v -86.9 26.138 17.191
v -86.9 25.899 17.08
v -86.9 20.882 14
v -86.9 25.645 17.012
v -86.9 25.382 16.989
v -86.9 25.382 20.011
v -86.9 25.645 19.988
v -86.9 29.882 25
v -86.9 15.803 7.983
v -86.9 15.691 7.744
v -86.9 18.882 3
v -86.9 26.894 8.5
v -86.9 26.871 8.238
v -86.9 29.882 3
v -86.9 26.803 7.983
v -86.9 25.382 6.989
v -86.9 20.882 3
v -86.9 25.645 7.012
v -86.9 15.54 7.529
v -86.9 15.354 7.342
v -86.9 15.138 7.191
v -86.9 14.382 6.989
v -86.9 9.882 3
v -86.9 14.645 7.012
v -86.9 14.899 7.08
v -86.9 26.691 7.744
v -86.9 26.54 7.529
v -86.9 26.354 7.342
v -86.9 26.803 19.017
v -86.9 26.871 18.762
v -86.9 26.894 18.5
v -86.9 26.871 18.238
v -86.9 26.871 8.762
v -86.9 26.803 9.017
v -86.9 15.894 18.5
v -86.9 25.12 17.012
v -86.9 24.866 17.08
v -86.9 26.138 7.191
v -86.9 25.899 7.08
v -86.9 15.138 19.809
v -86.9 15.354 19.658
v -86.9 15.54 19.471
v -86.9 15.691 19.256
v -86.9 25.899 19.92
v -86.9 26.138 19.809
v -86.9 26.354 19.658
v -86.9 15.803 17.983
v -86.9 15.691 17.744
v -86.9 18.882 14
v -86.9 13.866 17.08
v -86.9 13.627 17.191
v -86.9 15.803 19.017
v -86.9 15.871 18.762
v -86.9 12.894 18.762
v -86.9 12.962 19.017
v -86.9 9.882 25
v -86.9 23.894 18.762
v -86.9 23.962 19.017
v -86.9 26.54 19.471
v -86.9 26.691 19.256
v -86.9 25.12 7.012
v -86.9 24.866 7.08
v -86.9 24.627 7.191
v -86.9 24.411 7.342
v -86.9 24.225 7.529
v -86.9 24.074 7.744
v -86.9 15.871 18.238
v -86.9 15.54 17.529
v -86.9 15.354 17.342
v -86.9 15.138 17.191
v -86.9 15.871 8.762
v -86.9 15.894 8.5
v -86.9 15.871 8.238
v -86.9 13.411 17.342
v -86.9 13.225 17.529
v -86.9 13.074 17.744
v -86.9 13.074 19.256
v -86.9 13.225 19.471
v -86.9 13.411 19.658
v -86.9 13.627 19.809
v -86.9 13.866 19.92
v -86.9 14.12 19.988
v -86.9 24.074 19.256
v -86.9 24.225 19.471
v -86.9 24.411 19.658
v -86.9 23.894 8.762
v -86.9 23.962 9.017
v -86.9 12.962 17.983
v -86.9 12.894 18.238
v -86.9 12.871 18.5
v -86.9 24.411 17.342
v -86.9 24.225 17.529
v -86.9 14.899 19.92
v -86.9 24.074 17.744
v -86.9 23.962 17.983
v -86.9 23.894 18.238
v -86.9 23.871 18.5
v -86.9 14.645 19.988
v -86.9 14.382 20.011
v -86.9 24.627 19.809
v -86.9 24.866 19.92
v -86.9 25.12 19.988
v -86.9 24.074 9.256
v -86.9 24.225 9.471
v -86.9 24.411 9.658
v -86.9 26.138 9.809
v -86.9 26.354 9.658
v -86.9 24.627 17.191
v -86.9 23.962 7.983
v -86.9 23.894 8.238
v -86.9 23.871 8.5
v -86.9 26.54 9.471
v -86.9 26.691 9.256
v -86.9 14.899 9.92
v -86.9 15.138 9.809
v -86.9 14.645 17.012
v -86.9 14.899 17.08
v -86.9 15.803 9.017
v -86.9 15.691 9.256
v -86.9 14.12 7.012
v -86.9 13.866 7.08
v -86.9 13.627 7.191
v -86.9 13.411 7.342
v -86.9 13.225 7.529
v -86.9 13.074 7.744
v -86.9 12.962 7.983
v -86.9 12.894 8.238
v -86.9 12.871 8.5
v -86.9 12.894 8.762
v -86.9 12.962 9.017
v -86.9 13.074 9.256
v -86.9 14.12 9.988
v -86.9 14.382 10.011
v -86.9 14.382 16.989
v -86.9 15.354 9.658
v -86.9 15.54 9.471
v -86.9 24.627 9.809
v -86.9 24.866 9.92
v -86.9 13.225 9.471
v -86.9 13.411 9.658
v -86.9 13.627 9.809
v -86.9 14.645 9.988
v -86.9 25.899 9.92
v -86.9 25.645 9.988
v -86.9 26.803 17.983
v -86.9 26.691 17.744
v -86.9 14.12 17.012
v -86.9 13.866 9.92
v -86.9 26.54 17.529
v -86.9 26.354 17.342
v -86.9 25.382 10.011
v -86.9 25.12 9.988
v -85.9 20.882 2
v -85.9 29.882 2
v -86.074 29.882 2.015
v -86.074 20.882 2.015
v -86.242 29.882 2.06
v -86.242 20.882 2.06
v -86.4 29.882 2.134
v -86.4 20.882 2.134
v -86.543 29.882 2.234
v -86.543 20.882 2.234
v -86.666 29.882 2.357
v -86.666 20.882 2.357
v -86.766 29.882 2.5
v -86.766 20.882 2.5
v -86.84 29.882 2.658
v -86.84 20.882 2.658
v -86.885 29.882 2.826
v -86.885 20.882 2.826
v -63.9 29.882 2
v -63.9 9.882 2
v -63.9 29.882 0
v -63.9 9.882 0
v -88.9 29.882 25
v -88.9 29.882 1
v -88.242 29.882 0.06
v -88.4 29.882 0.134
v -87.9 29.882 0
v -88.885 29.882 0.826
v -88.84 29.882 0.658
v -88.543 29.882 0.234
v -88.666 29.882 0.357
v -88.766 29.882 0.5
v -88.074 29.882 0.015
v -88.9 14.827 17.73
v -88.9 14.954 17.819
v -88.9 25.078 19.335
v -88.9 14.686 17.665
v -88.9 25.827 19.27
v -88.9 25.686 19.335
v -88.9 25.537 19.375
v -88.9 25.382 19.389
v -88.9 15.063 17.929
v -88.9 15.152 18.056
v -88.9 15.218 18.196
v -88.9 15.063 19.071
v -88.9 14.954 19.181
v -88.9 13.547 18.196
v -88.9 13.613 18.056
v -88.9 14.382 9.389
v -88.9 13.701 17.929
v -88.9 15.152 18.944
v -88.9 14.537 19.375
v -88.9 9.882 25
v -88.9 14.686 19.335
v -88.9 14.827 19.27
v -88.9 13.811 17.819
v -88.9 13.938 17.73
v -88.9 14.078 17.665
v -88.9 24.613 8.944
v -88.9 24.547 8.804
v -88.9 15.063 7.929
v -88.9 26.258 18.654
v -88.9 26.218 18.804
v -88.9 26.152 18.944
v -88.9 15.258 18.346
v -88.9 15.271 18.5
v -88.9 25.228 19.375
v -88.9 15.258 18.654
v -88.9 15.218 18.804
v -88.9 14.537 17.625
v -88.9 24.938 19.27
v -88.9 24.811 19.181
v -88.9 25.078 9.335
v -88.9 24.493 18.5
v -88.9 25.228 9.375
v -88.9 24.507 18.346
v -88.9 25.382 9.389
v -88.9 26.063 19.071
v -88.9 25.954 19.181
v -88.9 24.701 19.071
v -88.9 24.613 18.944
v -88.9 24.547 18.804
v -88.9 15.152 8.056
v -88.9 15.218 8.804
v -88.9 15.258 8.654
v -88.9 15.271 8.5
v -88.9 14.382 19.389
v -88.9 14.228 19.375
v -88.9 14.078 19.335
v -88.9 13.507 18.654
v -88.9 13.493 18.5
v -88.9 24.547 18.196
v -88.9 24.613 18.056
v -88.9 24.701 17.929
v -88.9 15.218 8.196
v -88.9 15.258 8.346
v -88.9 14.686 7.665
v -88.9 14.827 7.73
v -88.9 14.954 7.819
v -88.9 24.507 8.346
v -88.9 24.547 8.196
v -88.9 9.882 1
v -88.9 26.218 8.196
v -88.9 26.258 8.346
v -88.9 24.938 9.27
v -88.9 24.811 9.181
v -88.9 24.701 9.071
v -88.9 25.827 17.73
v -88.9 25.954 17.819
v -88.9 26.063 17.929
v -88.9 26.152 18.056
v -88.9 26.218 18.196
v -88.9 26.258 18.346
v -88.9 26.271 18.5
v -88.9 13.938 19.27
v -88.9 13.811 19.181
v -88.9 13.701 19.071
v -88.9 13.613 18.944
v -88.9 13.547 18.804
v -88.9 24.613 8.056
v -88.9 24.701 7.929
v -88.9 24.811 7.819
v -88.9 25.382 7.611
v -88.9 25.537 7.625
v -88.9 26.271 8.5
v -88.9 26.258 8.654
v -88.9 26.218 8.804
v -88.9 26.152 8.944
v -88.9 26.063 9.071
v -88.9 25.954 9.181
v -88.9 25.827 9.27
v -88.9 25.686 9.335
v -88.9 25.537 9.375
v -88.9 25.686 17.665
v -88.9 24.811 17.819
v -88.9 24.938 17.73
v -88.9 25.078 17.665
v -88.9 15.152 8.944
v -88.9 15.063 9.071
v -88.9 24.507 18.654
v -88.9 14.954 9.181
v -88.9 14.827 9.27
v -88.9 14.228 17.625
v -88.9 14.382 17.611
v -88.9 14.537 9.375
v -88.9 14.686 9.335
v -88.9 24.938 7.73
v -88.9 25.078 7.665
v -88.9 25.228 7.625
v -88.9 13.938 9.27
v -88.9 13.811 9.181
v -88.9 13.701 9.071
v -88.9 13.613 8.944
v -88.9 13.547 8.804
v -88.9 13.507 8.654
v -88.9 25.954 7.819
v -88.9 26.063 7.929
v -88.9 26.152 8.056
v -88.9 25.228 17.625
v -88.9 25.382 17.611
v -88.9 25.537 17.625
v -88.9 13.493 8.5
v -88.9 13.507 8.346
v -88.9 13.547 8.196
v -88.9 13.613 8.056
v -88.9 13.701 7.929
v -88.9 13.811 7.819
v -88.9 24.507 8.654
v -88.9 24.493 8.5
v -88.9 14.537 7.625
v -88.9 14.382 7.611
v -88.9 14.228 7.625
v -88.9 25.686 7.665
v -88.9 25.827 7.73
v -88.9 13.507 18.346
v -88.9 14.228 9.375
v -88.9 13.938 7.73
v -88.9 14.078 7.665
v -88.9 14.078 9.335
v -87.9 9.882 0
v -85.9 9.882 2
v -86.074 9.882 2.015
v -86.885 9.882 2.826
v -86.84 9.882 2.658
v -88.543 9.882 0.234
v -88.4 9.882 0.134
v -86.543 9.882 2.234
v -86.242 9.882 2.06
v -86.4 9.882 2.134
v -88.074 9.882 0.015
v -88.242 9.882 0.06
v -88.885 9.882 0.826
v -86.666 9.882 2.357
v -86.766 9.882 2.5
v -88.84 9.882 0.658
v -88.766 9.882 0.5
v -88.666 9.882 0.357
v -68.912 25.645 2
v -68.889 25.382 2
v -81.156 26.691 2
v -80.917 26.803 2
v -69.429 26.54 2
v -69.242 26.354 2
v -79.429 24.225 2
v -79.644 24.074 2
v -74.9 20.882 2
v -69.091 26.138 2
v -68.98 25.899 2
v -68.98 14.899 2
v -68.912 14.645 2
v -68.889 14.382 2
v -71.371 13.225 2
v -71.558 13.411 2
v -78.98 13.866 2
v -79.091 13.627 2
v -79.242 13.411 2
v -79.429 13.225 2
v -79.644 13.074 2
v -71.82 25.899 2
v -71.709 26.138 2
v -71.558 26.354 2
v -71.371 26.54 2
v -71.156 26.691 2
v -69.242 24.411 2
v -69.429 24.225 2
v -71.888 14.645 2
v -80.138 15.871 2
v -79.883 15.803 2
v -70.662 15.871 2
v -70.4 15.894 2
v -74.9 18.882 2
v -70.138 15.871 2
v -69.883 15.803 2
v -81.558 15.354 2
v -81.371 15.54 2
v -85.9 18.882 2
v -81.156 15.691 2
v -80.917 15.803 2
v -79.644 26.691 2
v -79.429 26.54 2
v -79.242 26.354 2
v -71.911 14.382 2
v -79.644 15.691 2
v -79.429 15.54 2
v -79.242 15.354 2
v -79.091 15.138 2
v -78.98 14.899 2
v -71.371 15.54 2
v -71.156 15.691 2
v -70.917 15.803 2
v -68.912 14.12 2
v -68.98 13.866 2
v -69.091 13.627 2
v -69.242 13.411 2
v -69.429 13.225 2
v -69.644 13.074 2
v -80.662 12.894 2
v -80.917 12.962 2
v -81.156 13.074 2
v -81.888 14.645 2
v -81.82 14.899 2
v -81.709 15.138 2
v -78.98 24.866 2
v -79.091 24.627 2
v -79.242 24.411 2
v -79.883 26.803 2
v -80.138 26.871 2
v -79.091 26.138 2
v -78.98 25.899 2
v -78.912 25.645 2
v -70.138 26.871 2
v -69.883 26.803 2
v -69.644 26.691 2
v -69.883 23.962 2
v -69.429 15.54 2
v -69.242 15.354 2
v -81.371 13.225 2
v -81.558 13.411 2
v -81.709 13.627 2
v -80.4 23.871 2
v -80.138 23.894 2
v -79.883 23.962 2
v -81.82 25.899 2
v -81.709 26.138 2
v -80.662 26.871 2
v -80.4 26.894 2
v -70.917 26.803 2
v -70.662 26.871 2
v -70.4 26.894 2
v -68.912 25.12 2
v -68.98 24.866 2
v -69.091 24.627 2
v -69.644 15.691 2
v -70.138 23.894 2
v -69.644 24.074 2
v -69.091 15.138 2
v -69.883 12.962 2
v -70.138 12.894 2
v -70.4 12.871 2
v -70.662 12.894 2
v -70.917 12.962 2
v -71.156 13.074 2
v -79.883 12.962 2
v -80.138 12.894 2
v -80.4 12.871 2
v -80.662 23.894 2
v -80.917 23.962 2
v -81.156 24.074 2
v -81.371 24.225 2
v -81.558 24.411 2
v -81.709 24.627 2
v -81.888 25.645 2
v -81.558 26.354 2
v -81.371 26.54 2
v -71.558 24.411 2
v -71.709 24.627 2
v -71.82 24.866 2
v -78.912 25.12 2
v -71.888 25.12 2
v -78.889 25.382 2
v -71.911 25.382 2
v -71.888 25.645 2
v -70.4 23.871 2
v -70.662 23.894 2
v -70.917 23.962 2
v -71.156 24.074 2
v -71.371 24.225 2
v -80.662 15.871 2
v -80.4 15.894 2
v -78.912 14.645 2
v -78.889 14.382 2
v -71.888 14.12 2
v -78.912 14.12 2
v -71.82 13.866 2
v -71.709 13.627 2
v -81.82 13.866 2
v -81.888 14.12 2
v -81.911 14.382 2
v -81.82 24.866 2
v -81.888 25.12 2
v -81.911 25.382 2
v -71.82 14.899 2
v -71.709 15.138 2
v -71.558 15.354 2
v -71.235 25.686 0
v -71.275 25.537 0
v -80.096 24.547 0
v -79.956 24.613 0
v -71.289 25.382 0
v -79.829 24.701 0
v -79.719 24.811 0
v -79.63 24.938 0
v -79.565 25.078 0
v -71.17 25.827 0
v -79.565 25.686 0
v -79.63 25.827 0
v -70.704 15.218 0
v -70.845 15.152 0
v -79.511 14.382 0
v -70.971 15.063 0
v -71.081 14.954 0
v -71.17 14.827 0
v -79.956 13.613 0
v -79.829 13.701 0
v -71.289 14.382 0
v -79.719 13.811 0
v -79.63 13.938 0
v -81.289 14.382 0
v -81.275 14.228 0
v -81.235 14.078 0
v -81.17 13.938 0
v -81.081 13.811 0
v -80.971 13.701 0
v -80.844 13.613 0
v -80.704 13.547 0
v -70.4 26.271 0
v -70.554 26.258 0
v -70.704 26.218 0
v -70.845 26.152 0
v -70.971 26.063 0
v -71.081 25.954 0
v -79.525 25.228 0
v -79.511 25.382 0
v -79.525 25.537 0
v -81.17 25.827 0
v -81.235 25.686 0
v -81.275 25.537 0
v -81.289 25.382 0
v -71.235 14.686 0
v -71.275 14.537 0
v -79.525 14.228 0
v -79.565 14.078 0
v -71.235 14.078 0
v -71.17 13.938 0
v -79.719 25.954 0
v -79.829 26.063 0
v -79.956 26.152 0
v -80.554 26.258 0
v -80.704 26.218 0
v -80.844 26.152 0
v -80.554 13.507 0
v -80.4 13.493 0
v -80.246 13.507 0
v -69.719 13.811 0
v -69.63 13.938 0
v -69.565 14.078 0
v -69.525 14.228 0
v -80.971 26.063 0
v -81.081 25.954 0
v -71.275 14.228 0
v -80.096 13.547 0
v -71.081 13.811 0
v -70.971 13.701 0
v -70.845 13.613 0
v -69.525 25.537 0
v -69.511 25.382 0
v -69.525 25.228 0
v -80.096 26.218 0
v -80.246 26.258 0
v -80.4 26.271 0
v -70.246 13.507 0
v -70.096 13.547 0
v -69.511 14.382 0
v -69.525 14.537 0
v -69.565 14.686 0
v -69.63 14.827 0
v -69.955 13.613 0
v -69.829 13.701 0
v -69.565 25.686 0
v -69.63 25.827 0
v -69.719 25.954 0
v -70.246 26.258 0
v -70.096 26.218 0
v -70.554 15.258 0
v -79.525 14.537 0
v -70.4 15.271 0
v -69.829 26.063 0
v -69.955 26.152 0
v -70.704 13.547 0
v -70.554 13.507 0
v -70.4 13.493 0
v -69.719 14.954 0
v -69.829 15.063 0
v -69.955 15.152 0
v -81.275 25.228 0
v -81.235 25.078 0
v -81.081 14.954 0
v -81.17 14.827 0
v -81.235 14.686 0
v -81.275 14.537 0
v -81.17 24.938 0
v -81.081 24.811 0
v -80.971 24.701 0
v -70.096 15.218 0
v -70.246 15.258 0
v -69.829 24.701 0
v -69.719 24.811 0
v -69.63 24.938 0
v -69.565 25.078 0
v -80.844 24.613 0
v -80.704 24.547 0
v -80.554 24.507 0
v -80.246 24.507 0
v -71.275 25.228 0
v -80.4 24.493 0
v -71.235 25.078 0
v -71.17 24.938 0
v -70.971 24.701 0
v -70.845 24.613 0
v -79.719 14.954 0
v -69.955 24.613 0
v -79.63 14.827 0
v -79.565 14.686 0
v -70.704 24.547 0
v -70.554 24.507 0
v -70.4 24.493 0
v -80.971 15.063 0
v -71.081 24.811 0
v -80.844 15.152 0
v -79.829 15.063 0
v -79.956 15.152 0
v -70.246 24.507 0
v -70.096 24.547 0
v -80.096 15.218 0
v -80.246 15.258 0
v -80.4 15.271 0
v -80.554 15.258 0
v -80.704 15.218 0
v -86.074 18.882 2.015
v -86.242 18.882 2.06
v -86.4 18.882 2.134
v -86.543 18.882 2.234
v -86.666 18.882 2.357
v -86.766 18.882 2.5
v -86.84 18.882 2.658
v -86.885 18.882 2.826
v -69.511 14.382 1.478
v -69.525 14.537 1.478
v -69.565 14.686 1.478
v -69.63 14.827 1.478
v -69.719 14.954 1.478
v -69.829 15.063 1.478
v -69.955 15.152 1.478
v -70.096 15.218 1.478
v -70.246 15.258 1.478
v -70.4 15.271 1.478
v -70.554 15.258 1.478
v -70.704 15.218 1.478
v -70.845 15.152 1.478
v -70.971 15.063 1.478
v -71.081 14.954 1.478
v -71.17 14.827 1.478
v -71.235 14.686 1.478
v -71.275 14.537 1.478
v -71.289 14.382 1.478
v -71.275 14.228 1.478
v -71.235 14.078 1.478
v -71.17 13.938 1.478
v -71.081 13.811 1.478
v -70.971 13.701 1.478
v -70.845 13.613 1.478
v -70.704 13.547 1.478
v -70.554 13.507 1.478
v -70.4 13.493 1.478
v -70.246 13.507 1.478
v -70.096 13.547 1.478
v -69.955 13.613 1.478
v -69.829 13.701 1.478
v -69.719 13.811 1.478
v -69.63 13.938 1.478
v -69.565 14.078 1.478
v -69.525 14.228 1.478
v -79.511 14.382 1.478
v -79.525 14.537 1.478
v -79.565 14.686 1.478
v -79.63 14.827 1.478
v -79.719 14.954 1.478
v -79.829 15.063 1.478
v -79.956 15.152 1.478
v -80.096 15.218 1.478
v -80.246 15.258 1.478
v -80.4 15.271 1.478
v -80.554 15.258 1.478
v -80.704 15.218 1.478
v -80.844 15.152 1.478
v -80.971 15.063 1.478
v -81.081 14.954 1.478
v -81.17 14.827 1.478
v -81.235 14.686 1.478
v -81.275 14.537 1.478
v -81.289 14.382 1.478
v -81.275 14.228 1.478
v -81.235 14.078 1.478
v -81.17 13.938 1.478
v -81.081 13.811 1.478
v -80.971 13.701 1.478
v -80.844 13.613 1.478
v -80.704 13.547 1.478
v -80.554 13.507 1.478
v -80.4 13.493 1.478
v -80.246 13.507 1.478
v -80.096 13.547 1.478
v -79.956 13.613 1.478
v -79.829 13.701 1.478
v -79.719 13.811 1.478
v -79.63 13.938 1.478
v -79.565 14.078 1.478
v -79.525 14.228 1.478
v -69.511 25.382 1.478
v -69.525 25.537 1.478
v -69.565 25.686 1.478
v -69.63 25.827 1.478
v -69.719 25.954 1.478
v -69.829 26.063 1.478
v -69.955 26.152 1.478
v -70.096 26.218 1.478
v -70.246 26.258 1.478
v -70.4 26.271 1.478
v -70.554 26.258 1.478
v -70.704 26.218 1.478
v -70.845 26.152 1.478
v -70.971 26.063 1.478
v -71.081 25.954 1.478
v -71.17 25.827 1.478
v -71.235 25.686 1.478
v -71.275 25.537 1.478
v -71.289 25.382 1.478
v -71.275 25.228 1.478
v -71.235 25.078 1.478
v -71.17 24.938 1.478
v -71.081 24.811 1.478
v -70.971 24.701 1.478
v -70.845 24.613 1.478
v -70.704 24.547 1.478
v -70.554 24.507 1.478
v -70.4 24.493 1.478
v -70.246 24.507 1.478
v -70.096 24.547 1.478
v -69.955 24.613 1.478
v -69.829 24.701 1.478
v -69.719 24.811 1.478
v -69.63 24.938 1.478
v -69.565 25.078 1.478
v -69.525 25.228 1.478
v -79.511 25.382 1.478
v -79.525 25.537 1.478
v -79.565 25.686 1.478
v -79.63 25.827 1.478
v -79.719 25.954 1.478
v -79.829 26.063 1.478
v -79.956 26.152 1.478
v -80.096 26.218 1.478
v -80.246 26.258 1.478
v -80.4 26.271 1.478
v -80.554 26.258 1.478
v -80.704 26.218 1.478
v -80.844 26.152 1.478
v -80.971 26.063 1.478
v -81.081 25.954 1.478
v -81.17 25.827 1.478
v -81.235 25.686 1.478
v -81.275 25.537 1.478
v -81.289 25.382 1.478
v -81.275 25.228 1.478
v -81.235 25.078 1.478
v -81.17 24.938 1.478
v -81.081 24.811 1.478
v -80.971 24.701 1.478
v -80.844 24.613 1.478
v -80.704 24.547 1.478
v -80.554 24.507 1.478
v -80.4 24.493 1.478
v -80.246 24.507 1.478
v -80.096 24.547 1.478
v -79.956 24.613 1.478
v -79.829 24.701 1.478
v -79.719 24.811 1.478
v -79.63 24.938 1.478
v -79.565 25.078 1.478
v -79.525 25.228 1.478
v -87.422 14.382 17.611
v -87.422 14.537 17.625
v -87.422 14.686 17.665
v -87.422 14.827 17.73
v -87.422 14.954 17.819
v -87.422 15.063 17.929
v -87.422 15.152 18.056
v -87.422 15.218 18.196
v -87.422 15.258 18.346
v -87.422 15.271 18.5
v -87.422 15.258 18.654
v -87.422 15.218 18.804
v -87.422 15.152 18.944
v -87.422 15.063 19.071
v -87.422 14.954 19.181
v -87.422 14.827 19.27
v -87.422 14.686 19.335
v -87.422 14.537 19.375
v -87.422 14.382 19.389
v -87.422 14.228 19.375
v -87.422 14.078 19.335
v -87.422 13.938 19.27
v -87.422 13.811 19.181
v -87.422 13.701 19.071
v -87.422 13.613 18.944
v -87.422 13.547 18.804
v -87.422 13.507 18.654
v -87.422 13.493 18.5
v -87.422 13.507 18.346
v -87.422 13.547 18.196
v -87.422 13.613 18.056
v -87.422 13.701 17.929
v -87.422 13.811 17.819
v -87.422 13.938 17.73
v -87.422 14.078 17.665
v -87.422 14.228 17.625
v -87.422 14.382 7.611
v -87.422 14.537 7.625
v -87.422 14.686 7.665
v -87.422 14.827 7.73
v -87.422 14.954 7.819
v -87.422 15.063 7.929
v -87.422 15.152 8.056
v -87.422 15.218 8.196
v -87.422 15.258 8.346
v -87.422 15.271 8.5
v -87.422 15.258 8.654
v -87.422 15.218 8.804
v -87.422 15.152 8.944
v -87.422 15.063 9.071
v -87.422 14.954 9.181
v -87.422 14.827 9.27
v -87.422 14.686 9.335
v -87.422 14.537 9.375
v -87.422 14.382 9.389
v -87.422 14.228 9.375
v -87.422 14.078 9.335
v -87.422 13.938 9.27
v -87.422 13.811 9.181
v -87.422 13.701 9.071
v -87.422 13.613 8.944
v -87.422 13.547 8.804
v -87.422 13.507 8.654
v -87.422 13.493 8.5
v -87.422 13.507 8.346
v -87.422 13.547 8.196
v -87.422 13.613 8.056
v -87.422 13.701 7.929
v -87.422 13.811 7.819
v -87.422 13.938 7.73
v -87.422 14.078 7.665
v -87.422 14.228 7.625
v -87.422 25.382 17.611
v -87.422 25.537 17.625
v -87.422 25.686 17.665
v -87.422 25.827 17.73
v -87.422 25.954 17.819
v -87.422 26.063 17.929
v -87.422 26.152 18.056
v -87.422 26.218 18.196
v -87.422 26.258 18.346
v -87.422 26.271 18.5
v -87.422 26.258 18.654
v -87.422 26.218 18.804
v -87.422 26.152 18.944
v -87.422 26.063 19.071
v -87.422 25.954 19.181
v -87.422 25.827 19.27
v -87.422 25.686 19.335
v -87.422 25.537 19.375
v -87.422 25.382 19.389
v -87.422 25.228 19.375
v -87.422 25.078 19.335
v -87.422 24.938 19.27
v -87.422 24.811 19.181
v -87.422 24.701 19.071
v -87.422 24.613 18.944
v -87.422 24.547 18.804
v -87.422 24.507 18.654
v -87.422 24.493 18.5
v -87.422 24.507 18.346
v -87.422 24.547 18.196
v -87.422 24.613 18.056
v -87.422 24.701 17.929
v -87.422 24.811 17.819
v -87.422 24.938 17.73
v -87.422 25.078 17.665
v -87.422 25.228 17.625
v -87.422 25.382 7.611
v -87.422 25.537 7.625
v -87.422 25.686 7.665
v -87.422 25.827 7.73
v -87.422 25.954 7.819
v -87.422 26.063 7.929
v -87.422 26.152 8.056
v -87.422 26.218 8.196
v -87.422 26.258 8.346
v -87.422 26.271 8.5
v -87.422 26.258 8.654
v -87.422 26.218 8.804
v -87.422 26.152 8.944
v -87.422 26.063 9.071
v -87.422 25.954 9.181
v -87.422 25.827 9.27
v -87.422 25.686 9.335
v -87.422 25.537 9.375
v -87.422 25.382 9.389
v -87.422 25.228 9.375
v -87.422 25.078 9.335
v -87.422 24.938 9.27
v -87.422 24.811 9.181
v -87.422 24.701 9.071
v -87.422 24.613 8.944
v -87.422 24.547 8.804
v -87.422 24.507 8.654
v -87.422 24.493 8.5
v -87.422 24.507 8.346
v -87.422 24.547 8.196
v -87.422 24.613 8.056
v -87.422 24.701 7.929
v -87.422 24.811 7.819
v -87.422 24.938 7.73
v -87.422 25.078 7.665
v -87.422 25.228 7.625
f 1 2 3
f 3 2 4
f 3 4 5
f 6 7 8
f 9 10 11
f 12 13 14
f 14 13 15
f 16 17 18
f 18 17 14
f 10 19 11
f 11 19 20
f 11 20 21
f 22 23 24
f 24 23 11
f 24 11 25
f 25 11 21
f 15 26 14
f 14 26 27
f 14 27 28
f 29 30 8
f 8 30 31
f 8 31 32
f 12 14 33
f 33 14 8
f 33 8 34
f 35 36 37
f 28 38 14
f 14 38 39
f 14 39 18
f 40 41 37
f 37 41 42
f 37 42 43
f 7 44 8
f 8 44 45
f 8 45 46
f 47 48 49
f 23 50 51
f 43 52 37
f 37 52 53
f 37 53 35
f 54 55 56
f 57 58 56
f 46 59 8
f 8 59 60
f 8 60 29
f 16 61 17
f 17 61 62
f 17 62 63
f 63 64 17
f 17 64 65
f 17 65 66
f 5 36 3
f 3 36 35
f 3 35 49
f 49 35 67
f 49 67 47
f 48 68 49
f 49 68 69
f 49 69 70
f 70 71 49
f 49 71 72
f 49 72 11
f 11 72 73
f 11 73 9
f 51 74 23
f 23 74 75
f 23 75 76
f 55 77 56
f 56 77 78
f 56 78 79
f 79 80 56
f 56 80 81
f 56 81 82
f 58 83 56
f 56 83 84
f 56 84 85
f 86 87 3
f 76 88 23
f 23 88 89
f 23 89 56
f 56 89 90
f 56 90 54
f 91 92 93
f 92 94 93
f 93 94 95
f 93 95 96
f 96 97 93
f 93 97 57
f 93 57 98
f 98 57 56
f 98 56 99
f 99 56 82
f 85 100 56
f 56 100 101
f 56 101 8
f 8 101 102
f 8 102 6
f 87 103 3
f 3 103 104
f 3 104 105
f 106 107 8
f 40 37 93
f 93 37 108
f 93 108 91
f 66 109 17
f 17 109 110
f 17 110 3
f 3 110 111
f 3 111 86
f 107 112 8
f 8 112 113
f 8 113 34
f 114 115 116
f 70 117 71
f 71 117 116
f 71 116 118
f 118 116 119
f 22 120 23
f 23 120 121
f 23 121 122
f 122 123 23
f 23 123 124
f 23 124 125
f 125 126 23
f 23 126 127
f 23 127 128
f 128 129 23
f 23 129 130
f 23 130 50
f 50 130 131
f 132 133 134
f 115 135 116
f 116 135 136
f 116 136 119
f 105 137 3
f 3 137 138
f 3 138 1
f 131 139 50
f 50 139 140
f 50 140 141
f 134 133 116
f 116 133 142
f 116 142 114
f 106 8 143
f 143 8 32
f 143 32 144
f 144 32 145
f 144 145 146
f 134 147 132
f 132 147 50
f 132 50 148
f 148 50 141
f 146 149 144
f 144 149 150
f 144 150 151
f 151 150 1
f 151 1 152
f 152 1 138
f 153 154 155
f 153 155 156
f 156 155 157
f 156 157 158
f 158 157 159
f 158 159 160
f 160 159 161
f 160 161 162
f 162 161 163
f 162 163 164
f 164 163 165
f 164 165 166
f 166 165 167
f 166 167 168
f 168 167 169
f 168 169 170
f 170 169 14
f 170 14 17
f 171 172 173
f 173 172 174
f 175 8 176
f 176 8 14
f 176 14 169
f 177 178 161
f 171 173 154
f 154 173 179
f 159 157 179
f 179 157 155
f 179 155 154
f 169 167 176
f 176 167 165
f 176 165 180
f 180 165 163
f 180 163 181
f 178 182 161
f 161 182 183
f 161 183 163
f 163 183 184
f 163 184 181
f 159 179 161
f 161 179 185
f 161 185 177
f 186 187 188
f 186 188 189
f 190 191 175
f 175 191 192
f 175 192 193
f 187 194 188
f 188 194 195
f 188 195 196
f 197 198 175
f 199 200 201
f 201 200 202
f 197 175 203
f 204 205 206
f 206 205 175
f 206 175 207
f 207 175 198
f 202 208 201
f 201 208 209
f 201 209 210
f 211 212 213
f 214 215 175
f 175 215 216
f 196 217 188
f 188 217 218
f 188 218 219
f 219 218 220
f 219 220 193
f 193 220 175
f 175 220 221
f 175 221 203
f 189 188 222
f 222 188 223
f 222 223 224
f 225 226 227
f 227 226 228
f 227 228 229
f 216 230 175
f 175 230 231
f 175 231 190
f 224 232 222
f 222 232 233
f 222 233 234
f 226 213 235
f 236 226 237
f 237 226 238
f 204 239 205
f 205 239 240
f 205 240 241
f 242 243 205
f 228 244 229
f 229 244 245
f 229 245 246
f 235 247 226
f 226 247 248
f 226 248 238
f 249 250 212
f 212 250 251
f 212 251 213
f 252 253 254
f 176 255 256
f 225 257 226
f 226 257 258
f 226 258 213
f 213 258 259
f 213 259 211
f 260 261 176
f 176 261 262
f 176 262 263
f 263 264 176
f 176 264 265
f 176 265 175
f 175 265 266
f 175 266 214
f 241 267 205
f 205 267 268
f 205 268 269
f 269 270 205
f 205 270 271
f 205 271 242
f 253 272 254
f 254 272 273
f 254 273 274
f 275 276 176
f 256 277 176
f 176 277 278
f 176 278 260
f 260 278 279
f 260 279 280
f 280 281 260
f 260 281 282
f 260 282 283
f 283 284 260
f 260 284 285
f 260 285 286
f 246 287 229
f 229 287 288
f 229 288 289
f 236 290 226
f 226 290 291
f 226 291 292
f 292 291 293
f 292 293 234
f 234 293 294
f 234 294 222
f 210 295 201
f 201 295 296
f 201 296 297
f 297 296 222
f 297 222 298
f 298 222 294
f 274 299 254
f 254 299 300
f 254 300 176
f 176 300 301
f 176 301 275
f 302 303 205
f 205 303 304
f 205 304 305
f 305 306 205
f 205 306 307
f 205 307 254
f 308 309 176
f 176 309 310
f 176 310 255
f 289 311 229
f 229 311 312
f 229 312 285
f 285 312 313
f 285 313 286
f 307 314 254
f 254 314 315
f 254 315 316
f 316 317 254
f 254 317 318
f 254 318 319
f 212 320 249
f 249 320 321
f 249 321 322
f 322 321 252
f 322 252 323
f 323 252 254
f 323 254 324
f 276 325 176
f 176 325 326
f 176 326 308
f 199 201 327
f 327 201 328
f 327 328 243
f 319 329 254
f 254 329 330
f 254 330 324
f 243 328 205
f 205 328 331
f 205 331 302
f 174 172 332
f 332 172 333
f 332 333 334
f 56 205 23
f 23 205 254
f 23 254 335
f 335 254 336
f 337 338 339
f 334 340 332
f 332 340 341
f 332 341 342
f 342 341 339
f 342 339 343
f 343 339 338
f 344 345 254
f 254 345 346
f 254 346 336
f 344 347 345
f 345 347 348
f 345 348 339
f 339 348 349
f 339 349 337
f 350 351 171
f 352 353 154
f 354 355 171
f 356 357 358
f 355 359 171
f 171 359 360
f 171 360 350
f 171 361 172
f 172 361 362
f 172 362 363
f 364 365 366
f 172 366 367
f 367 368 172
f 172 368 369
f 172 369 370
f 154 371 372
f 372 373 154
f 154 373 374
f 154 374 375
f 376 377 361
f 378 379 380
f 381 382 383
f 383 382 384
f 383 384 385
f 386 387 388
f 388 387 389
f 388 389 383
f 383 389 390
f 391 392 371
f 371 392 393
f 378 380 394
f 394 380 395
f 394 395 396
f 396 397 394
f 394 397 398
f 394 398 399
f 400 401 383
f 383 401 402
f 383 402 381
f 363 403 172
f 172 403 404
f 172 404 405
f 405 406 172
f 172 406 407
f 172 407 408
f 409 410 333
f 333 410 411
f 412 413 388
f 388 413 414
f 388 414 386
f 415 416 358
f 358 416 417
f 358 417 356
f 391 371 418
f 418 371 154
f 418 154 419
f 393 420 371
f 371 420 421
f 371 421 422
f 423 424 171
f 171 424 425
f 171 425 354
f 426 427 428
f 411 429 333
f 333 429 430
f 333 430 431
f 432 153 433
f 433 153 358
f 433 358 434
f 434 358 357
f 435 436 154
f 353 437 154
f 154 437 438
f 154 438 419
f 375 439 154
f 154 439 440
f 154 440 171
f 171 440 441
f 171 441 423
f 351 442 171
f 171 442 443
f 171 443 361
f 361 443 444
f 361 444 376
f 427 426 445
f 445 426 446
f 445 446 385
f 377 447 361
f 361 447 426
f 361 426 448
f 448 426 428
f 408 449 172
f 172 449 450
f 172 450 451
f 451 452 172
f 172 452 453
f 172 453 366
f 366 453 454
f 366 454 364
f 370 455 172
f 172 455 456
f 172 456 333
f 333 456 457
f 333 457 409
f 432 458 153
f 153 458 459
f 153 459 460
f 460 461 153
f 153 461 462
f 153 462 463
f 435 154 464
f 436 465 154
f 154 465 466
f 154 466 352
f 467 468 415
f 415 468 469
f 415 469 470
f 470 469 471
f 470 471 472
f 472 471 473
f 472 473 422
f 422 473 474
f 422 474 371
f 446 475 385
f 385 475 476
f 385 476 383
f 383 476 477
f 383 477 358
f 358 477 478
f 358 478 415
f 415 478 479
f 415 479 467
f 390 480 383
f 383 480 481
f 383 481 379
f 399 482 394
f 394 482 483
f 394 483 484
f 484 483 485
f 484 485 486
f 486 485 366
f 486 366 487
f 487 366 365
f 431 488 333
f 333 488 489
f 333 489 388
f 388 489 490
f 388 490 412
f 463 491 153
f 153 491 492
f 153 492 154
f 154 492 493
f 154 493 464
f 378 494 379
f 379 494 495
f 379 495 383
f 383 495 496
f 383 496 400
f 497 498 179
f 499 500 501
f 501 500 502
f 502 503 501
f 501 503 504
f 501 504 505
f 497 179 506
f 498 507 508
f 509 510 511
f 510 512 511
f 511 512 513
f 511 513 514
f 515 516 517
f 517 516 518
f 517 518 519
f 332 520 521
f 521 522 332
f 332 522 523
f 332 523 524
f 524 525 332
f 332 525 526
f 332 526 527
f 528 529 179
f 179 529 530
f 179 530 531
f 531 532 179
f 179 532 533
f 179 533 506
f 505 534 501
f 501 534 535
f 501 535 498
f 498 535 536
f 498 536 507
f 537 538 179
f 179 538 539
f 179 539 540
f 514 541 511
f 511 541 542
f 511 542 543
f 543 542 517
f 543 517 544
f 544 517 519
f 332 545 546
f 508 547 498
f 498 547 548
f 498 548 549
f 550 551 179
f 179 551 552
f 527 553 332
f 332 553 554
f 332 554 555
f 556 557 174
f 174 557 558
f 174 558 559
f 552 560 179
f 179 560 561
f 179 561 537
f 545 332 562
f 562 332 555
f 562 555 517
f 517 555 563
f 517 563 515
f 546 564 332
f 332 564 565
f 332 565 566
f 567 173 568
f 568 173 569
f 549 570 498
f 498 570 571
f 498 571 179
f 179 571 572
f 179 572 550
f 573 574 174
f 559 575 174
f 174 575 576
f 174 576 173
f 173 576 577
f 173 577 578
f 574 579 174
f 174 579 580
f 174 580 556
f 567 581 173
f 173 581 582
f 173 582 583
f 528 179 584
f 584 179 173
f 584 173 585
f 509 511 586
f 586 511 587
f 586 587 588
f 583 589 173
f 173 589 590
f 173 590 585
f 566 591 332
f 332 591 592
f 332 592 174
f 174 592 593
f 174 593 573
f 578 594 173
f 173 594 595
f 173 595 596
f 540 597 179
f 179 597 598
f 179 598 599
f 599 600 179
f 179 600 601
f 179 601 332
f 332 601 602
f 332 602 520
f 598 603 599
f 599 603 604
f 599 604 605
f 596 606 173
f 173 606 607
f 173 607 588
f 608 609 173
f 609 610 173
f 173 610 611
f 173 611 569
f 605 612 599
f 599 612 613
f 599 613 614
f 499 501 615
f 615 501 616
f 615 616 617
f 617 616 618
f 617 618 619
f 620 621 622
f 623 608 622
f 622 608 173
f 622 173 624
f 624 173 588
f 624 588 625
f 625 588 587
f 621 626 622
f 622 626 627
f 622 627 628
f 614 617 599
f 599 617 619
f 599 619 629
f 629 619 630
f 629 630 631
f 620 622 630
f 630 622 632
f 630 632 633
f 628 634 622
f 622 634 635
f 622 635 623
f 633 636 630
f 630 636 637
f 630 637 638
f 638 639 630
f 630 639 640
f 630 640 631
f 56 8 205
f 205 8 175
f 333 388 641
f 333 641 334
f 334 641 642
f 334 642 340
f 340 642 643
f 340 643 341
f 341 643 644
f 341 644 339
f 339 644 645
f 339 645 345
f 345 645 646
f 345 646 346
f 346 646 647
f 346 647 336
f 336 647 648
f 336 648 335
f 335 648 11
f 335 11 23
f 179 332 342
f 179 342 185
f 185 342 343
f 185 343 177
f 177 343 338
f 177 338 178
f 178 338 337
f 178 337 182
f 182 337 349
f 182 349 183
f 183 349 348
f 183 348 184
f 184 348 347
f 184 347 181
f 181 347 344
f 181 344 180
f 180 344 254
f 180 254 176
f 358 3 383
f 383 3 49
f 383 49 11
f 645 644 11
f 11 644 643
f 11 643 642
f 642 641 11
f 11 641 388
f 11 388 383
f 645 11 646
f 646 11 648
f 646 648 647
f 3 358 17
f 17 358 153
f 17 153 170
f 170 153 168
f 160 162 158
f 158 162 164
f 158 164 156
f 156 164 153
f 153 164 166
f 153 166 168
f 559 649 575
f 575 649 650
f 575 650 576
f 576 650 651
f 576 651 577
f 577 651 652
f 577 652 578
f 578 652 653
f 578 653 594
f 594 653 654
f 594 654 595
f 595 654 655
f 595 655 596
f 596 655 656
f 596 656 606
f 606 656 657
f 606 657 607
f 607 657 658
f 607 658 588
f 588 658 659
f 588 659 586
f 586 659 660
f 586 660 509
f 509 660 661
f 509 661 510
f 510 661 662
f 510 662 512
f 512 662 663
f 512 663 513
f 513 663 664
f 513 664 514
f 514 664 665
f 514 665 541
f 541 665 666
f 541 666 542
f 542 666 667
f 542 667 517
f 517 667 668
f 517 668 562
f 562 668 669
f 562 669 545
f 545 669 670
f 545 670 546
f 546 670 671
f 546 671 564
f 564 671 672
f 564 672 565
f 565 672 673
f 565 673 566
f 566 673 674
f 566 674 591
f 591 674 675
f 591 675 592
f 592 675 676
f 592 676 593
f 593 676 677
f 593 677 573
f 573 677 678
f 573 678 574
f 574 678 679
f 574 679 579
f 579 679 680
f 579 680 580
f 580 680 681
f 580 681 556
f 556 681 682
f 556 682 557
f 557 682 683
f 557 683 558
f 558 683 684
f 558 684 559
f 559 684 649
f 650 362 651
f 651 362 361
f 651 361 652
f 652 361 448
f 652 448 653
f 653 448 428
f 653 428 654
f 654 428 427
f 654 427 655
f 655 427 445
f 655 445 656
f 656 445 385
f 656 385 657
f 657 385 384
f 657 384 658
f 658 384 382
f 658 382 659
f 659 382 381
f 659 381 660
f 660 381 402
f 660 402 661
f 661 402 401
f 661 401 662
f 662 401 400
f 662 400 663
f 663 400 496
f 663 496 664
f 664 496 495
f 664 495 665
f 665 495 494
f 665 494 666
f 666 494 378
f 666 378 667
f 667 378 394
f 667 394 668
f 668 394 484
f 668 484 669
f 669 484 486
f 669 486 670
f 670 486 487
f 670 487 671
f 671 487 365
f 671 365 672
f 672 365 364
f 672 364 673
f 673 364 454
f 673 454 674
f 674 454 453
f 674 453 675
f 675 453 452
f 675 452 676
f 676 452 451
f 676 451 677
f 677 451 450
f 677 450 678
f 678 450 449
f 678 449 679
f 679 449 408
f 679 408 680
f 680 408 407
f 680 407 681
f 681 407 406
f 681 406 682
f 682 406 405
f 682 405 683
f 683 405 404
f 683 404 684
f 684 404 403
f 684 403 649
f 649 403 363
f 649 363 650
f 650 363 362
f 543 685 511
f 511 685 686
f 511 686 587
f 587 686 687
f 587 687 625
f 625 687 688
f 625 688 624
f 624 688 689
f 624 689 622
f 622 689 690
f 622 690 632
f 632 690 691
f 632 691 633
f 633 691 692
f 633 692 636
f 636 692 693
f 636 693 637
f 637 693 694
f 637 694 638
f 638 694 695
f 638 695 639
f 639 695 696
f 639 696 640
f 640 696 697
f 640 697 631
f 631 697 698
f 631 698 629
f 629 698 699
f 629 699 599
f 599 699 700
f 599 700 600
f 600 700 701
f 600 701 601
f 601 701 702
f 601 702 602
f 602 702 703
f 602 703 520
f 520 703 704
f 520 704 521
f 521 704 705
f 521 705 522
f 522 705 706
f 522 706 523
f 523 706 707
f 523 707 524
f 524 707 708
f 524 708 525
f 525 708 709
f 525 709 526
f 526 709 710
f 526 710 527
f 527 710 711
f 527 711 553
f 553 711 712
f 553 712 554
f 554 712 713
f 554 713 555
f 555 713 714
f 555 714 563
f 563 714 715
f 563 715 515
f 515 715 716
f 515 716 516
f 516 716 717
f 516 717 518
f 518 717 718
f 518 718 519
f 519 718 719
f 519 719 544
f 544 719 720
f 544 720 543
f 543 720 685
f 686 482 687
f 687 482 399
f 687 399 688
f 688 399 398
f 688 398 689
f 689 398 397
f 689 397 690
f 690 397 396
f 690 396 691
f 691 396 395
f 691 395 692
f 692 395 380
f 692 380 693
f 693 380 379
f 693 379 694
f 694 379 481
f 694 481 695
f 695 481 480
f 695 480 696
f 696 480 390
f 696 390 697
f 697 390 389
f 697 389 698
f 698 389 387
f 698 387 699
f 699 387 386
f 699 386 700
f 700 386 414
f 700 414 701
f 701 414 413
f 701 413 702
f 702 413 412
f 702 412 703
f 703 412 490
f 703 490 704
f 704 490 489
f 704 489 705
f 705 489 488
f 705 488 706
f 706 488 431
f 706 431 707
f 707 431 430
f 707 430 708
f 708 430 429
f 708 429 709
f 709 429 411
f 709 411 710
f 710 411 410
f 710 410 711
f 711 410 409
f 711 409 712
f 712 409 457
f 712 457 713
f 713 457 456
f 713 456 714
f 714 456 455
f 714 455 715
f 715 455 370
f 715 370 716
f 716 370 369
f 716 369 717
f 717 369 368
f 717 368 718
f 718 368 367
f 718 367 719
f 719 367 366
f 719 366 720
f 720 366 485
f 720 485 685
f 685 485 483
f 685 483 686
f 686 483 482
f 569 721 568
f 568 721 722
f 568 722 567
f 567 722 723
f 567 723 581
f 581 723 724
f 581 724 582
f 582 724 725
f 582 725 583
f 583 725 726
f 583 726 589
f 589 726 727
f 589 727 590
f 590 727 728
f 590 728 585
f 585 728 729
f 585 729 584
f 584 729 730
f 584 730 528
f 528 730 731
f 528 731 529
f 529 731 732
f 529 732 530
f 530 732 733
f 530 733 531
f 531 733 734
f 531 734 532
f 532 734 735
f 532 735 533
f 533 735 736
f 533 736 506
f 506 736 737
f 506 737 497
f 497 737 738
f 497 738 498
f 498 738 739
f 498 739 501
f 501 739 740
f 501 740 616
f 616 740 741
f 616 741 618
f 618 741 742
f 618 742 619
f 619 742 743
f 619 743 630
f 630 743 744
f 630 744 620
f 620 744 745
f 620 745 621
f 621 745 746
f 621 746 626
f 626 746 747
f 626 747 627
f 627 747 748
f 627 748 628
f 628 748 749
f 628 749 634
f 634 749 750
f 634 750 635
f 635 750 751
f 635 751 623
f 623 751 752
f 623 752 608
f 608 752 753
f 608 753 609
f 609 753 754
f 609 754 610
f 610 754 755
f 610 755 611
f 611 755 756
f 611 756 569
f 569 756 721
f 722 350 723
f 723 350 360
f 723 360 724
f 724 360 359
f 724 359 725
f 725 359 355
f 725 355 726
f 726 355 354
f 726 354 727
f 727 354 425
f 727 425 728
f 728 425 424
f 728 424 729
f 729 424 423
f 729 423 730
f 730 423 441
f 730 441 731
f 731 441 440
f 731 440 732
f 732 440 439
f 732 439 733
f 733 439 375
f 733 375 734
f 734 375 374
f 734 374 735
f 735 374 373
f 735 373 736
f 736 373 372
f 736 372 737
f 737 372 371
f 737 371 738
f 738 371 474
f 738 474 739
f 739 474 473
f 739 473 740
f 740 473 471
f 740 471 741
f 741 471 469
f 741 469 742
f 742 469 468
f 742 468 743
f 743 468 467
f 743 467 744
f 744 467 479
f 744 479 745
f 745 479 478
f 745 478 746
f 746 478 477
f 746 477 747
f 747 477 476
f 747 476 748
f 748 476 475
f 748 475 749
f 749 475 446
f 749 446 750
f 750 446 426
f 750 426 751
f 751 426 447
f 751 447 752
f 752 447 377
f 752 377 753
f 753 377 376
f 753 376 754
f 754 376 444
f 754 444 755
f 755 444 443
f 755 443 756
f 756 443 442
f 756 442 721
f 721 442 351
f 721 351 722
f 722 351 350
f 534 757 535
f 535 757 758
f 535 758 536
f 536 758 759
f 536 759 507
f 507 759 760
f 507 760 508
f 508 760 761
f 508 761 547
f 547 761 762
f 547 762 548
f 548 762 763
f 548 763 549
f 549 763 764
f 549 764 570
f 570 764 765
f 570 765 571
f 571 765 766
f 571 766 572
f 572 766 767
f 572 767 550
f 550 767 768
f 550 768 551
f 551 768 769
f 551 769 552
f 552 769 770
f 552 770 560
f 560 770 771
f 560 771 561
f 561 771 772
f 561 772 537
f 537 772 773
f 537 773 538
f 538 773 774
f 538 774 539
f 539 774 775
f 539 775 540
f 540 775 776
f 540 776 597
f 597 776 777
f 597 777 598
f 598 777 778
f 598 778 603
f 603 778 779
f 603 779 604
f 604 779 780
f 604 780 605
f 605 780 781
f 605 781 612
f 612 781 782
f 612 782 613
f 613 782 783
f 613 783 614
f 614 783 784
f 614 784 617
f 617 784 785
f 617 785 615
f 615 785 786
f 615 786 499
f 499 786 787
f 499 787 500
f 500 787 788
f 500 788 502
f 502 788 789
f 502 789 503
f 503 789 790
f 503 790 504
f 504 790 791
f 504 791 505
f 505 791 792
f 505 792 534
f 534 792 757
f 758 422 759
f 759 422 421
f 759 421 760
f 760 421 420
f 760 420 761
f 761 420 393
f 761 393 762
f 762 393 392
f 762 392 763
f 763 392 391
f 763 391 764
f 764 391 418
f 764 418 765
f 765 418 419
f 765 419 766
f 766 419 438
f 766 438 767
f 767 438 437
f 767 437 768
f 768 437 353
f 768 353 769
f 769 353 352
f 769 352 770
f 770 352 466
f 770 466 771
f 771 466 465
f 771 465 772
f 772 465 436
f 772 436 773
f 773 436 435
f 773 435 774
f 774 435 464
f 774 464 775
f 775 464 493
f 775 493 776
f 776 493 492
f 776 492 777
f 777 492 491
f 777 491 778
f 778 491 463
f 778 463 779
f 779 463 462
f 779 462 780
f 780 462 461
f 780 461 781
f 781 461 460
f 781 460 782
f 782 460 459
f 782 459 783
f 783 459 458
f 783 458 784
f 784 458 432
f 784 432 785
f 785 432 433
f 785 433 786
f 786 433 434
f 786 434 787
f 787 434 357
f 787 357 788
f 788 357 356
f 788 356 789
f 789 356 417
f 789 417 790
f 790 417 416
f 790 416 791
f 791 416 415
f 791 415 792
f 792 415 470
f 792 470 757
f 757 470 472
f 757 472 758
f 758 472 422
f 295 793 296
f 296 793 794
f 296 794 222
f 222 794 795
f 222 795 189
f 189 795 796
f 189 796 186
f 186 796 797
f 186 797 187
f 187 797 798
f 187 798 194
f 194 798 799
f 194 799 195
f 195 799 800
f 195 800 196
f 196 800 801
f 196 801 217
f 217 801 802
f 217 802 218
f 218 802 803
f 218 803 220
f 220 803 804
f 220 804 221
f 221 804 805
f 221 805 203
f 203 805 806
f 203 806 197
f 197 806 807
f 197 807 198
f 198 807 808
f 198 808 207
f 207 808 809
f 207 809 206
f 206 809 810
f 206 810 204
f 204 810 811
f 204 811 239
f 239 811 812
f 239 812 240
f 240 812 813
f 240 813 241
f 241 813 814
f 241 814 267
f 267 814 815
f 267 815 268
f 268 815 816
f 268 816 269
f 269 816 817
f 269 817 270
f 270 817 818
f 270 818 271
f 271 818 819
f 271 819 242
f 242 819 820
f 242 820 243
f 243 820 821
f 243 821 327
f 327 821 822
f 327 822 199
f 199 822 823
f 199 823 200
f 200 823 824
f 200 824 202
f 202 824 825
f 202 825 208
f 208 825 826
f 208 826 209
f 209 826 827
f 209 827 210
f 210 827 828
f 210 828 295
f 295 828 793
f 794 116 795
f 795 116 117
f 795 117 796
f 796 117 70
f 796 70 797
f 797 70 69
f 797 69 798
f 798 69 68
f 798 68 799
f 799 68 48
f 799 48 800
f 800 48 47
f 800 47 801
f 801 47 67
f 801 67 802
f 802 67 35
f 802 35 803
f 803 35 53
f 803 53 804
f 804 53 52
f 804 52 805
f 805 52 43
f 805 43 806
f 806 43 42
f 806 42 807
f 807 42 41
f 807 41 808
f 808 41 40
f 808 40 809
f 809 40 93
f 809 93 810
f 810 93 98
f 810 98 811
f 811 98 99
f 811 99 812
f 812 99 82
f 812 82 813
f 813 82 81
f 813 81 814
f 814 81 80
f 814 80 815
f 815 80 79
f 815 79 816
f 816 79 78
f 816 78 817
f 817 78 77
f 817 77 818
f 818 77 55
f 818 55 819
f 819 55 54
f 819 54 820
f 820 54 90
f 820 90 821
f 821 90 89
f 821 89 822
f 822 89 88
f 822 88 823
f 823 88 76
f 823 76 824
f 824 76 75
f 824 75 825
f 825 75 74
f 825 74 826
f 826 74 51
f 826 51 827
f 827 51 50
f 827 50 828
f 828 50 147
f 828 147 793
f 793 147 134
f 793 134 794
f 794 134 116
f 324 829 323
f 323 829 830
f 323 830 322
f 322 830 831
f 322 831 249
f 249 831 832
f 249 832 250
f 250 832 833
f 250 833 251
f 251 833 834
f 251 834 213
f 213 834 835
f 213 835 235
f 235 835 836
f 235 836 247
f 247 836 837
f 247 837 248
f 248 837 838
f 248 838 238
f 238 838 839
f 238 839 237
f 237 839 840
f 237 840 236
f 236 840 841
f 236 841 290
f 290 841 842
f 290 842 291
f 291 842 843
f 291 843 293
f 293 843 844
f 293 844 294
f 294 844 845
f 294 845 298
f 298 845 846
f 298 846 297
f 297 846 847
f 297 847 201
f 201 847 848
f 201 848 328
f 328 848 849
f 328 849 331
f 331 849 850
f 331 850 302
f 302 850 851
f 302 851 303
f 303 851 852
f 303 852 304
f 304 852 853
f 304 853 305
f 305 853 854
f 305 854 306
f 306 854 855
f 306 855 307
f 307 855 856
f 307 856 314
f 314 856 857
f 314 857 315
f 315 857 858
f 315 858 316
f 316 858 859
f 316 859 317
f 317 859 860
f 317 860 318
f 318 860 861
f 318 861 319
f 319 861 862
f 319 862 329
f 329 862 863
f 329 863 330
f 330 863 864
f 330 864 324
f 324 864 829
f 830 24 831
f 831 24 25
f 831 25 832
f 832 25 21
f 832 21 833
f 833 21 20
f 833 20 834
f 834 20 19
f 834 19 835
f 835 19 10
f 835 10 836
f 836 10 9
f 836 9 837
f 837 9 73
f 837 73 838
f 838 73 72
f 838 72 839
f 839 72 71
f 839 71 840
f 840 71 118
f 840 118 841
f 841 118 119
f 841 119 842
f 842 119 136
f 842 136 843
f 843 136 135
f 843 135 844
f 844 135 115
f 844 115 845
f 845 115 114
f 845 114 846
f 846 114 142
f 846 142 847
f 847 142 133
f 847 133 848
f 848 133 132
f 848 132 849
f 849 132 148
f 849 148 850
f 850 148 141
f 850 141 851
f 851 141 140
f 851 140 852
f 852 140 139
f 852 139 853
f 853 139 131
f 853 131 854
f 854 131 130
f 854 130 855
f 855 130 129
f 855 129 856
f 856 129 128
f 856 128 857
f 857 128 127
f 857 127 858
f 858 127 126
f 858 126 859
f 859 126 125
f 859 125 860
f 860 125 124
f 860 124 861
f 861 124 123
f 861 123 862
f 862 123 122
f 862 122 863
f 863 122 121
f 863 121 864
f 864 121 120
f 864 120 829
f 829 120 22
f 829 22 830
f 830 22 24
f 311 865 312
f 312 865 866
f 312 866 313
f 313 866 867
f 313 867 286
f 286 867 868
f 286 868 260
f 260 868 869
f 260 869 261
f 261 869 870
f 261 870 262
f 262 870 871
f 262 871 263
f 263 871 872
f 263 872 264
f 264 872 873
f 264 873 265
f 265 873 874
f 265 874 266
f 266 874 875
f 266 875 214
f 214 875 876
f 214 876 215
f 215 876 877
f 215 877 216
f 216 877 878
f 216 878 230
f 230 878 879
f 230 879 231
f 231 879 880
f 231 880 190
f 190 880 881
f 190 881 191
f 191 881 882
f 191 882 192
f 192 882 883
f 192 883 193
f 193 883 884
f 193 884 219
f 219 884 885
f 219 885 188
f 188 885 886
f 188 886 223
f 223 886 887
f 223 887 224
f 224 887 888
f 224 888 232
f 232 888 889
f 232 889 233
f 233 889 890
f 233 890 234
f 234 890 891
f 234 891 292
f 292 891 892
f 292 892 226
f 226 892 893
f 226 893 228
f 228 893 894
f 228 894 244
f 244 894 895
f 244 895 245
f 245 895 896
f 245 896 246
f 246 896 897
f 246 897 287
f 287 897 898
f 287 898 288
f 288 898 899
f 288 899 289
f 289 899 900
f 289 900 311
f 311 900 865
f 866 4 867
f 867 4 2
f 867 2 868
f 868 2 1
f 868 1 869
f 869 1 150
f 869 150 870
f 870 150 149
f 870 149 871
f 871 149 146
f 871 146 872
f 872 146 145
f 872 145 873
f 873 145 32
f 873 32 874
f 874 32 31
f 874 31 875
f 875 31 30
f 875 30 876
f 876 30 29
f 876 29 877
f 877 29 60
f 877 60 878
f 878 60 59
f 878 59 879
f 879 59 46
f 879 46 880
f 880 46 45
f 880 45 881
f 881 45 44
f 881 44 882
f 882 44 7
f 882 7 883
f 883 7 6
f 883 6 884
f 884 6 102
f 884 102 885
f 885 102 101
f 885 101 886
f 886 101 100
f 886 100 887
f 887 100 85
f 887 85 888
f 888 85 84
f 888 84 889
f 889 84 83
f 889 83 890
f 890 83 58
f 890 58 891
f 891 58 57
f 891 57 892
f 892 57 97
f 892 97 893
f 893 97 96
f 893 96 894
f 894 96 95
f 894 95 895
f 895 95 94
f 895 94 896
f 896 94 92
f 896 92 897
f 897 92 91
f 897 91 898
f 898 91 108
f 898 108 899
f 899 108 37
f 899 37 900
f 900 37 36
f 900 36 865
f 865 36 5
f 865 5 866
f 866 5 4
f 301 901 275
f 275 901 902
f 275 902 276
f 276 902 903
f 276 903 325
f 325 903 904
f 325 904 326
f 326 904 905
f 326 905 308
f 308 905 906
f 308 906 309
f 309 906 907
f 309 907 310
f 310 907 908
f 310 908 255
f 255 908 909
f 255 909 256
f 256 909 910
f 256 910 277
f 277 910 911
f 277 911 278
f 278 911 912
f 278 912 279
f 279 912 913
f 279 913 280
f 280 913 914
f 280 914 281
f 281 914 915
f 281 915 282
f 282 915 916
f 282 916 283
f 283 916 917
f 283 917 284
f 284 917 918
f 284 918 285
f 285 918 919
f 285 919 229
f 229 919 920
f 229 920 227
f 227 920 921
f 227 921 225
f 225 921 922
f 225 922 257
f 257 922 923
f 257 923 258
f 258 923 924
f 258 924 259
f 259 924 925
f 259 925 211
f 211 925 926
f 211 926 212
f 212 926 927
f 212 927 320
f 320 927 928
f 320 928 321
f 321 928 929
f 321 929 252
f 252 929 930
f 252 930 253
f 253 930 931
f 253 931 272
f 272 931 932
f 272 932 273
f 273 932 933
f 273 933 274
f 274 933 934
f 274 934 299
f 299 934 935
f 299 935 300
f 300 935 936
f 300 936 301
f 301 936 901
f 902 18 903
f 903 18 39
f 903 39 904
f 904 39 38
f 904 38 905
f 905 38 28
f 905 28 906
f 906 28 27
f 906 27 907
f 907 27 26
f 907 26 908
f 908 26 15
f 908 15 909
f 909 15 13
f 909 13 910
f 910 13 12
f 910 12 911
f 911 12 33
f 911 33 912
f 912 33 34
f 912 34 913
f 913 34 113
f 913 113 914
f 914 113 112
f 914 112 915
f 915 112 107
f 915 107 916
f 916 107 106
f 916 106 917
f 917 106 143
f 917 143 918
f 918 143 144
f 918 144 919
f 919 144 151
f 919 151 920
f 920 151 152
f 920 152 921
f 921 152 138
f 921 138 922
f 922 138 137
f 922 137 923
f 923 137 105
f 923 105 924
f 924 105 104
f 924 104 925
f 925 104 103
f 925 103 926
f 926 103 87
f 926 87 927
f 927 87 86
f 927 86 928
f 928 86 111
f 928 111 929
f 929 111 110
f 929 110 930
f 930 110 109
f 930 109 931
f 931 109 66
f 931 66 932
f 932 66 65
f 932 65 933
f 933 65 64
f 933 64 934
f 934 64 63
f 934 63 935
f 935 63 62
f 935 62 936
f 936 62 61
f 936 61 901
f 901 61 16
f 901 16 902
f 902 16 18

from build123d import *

# Parameters (mm, degrees)
SKETCH1_W                                 = 25
SKETCH1_H                                 = 20
BOSS_EXTRUDE1_DEPTH                       = 2
SKETCH2_W                                 = 2
SKETCH2_H                                 = 20
BOSS_EXTRUDE2_DEPTH                       = 23
FILLET2_R                                 = 1
FILLET3_R                                 = 1
RIB1_REACH                                = 94.888
SKETCH4_WALL_W                            = 204.746879862
SKETCH4_WALL_H                            = 2
CSK_FOR_0_FLAT_HEAD_MACHINE_SCREW_2_COUNT = 2
CSK_FOR_0_FLAT_HEAD_MACHINE_SCREW_2_PITCH = 10


with BuildPart() as part:
    # Sketch1 → Boss-Extrude1 (new body)
    with BuildSketch(Plane.XY):
        with Locations((-76.4, 19.882401427)):
            Rectangle(SKETCH1_W, SKETCH1_H)
    extrude(amount=BOSS_EXTRUDE1_DEPTH)

    # Sketch2 → Boss-Extrude2 (add)
    with BuildSketch(Plane.XY.offset(2)):
        with Locations((-87.9, 19.882401427)):
            Rectangle(SKETCH2_W, SKETCH2_H)
    extrude(amount=BOSS_EXTRUDE2_DEPTH)

    # Fillet2
    fillet2_edges = [part.edges().sort_by_distance(p)[0] for p in [
        (-86.9, 19.882401427, 2),
    ]]
    fillet(fillet2_edges, radius=FILLET2_R)

    # Fillet3
    fillet3_edges = [part.edges().sort_by_distance(p)[0] for p in [
        (-88.9, 19.882401427, 0),
    ]]
    fillet(fillet3_edges, radius=FILLET3_R)

    # Sketch4 wall → Rib1 (add, up to next)
    with BuildSketch(Plane(origin=(-80.9, 19.882401427, 8), x_dir=(0.707106781187, 0, -0.707106781187), z_dir=(0.707106781187, 0, 0.707106781187)), mode=Mode.PRIVATE) as rib1_sk1:
        Rectangle(SKETCH4_WALL_W, SKETCH4_WALL_H)
    rib1_tool1 = extrude(rib1_sk1.sketch, amount=-RIB1_REACH, mode=Mode.PRIVATE) - part.part
    add(rib1_tool1.solids().sort_by_distance((-80.9, 19.882401427, 8))[0])

    # Sketch5 → CSK for #0 Flat Head Machine Screw (100)1 (revolve, cut)
    with BuildSketch(Plane(origin=(-80.4, 14.382401427, 2), x_dir=(0, -1, 0), z_dir=(1, 0, 0))):
        Polygon((0, 0), (0, 10.53416509), (0.889, 10), (0.889, 0.5221717), (1.5113, 0), align=None)
    csk_for_0_flat_head_machine_screw_100 = revolve(axis=Axis((-80.4, 14.382401427, 8.35), (0, 0, -1)), mode=Mode.SUBTRACT)

    # CSK for _0 Flat Head Machine Screw _ 2: CSK for #0 Flat Head Machine Screw (100)1 ×2
    with Locations(*[(i * CSK_FOR_0_FLAT_HEAD_MACHINE_SCREW_2_PITCH, 0, 0) for i in range(1, CSK_FOR_0_FLAT_HEAD_MACHINE_SCREW_2_COUNT)]):
        add(csk_for_0_flat_head_machine_screw_100, mode=Mode.SUBTRACT)

    # Mirror1: CSK for #0 Flat Head Machine Screw (100)1 across plane
    add(csk_for_0_flat_head_machine_screw_100.mirror(Plane(origin=(0, 19.882401427, 0), x_dir=(0, 0, 1), z_dir=(0, -1, 0))), mode=Mode.SUBTRACT)

    # Mirror1 copy 1 sketch → Mirror1 copy 1 (revolve, cut)
    with BuildSketch(Plane(origin=(-70.4, 25.382401427, 2), x_dir=(0, 1, 0), z_dir=(1, 0, 0))):
        Polygon((0, 0), (0, -10.53416509), (0.889, -10), (0.889, -0.5221717), (1.5113, 0), align=None)
    revolve(axis=Axis((-70.4, 25.382401427, 8.35), (0, 0, 1)), mode=Mode.SUBTRACT)

    # Mirror2: CSK for #0 Flat Head Machine Screw (100)1 across plane
    add(csk_for_0_flat_head_machine_screw_100.mirror(Plane(origin=(-44.45, 0, 44.45), x_dir=(0.7071067811865481, 2.453269466693398e-15, 0.707106781186547), z_dir=(0.7071067811865471, 2.4532694666933947e-15, -0.707106781186548))), mode=Mode.SUBTRACT)

    # Mirror2 copy 1 sketch → Mirror2 copy 1 (revolve, cut)
    with BuildSketch(Plane(origin=(-86.9, 14.382401427, 18.5), x_dir=(0, -1, 0), z_dir=(0, 0, 1))):
        Polygon((0, 0), (0, -10.53416509), (0.889, -10), (0.889, -0.5221717), (1.5113, 0), align=None)
    revolve(axis=Axis((-80.55, 14.382401427, 18.5), (1, 0, 0)), mode=Mode.SUBTRACT)

    # Mirror2 copy 2 sketch → Mirror2 copy 2 (revolve, cut)
    with BuildSketch(Plane(origin=(-86.9, 25.382401427, 8.5), x_dir=(0, 1, 0), z_dir=(0, 0, 1))):
        Polygon((0, 0), (0, 10.53416509), (0.889, 10), (0.889, 0.5221717), (1.5113, 0), align=None)
    revolve(axis=Axis((-80.55, 25.382401427, 8.5), (-1, 0, 0)), mode=Mode.SUBTRACT)

    # Mirror2 copy 3 sketch → Mirror2 copy 3 (revolve, cut)
    with BuildSketch(Plane(origin=(-86.9, 25.382401427, 18.5), x_dir=(0, 1, 0), z_dir=(0, 0, 1))):
        Polygon((0, 0), (0, 10.53416509), (0.889, 10), (0.889, 0.5221717), (1.5113, 0), align=None)
    revolve(axis=Axis((-80.55, 25.382401427, 18.5), (-1, 0, 0)), mode=Mode.SUBTRACT)


solid = part.part
